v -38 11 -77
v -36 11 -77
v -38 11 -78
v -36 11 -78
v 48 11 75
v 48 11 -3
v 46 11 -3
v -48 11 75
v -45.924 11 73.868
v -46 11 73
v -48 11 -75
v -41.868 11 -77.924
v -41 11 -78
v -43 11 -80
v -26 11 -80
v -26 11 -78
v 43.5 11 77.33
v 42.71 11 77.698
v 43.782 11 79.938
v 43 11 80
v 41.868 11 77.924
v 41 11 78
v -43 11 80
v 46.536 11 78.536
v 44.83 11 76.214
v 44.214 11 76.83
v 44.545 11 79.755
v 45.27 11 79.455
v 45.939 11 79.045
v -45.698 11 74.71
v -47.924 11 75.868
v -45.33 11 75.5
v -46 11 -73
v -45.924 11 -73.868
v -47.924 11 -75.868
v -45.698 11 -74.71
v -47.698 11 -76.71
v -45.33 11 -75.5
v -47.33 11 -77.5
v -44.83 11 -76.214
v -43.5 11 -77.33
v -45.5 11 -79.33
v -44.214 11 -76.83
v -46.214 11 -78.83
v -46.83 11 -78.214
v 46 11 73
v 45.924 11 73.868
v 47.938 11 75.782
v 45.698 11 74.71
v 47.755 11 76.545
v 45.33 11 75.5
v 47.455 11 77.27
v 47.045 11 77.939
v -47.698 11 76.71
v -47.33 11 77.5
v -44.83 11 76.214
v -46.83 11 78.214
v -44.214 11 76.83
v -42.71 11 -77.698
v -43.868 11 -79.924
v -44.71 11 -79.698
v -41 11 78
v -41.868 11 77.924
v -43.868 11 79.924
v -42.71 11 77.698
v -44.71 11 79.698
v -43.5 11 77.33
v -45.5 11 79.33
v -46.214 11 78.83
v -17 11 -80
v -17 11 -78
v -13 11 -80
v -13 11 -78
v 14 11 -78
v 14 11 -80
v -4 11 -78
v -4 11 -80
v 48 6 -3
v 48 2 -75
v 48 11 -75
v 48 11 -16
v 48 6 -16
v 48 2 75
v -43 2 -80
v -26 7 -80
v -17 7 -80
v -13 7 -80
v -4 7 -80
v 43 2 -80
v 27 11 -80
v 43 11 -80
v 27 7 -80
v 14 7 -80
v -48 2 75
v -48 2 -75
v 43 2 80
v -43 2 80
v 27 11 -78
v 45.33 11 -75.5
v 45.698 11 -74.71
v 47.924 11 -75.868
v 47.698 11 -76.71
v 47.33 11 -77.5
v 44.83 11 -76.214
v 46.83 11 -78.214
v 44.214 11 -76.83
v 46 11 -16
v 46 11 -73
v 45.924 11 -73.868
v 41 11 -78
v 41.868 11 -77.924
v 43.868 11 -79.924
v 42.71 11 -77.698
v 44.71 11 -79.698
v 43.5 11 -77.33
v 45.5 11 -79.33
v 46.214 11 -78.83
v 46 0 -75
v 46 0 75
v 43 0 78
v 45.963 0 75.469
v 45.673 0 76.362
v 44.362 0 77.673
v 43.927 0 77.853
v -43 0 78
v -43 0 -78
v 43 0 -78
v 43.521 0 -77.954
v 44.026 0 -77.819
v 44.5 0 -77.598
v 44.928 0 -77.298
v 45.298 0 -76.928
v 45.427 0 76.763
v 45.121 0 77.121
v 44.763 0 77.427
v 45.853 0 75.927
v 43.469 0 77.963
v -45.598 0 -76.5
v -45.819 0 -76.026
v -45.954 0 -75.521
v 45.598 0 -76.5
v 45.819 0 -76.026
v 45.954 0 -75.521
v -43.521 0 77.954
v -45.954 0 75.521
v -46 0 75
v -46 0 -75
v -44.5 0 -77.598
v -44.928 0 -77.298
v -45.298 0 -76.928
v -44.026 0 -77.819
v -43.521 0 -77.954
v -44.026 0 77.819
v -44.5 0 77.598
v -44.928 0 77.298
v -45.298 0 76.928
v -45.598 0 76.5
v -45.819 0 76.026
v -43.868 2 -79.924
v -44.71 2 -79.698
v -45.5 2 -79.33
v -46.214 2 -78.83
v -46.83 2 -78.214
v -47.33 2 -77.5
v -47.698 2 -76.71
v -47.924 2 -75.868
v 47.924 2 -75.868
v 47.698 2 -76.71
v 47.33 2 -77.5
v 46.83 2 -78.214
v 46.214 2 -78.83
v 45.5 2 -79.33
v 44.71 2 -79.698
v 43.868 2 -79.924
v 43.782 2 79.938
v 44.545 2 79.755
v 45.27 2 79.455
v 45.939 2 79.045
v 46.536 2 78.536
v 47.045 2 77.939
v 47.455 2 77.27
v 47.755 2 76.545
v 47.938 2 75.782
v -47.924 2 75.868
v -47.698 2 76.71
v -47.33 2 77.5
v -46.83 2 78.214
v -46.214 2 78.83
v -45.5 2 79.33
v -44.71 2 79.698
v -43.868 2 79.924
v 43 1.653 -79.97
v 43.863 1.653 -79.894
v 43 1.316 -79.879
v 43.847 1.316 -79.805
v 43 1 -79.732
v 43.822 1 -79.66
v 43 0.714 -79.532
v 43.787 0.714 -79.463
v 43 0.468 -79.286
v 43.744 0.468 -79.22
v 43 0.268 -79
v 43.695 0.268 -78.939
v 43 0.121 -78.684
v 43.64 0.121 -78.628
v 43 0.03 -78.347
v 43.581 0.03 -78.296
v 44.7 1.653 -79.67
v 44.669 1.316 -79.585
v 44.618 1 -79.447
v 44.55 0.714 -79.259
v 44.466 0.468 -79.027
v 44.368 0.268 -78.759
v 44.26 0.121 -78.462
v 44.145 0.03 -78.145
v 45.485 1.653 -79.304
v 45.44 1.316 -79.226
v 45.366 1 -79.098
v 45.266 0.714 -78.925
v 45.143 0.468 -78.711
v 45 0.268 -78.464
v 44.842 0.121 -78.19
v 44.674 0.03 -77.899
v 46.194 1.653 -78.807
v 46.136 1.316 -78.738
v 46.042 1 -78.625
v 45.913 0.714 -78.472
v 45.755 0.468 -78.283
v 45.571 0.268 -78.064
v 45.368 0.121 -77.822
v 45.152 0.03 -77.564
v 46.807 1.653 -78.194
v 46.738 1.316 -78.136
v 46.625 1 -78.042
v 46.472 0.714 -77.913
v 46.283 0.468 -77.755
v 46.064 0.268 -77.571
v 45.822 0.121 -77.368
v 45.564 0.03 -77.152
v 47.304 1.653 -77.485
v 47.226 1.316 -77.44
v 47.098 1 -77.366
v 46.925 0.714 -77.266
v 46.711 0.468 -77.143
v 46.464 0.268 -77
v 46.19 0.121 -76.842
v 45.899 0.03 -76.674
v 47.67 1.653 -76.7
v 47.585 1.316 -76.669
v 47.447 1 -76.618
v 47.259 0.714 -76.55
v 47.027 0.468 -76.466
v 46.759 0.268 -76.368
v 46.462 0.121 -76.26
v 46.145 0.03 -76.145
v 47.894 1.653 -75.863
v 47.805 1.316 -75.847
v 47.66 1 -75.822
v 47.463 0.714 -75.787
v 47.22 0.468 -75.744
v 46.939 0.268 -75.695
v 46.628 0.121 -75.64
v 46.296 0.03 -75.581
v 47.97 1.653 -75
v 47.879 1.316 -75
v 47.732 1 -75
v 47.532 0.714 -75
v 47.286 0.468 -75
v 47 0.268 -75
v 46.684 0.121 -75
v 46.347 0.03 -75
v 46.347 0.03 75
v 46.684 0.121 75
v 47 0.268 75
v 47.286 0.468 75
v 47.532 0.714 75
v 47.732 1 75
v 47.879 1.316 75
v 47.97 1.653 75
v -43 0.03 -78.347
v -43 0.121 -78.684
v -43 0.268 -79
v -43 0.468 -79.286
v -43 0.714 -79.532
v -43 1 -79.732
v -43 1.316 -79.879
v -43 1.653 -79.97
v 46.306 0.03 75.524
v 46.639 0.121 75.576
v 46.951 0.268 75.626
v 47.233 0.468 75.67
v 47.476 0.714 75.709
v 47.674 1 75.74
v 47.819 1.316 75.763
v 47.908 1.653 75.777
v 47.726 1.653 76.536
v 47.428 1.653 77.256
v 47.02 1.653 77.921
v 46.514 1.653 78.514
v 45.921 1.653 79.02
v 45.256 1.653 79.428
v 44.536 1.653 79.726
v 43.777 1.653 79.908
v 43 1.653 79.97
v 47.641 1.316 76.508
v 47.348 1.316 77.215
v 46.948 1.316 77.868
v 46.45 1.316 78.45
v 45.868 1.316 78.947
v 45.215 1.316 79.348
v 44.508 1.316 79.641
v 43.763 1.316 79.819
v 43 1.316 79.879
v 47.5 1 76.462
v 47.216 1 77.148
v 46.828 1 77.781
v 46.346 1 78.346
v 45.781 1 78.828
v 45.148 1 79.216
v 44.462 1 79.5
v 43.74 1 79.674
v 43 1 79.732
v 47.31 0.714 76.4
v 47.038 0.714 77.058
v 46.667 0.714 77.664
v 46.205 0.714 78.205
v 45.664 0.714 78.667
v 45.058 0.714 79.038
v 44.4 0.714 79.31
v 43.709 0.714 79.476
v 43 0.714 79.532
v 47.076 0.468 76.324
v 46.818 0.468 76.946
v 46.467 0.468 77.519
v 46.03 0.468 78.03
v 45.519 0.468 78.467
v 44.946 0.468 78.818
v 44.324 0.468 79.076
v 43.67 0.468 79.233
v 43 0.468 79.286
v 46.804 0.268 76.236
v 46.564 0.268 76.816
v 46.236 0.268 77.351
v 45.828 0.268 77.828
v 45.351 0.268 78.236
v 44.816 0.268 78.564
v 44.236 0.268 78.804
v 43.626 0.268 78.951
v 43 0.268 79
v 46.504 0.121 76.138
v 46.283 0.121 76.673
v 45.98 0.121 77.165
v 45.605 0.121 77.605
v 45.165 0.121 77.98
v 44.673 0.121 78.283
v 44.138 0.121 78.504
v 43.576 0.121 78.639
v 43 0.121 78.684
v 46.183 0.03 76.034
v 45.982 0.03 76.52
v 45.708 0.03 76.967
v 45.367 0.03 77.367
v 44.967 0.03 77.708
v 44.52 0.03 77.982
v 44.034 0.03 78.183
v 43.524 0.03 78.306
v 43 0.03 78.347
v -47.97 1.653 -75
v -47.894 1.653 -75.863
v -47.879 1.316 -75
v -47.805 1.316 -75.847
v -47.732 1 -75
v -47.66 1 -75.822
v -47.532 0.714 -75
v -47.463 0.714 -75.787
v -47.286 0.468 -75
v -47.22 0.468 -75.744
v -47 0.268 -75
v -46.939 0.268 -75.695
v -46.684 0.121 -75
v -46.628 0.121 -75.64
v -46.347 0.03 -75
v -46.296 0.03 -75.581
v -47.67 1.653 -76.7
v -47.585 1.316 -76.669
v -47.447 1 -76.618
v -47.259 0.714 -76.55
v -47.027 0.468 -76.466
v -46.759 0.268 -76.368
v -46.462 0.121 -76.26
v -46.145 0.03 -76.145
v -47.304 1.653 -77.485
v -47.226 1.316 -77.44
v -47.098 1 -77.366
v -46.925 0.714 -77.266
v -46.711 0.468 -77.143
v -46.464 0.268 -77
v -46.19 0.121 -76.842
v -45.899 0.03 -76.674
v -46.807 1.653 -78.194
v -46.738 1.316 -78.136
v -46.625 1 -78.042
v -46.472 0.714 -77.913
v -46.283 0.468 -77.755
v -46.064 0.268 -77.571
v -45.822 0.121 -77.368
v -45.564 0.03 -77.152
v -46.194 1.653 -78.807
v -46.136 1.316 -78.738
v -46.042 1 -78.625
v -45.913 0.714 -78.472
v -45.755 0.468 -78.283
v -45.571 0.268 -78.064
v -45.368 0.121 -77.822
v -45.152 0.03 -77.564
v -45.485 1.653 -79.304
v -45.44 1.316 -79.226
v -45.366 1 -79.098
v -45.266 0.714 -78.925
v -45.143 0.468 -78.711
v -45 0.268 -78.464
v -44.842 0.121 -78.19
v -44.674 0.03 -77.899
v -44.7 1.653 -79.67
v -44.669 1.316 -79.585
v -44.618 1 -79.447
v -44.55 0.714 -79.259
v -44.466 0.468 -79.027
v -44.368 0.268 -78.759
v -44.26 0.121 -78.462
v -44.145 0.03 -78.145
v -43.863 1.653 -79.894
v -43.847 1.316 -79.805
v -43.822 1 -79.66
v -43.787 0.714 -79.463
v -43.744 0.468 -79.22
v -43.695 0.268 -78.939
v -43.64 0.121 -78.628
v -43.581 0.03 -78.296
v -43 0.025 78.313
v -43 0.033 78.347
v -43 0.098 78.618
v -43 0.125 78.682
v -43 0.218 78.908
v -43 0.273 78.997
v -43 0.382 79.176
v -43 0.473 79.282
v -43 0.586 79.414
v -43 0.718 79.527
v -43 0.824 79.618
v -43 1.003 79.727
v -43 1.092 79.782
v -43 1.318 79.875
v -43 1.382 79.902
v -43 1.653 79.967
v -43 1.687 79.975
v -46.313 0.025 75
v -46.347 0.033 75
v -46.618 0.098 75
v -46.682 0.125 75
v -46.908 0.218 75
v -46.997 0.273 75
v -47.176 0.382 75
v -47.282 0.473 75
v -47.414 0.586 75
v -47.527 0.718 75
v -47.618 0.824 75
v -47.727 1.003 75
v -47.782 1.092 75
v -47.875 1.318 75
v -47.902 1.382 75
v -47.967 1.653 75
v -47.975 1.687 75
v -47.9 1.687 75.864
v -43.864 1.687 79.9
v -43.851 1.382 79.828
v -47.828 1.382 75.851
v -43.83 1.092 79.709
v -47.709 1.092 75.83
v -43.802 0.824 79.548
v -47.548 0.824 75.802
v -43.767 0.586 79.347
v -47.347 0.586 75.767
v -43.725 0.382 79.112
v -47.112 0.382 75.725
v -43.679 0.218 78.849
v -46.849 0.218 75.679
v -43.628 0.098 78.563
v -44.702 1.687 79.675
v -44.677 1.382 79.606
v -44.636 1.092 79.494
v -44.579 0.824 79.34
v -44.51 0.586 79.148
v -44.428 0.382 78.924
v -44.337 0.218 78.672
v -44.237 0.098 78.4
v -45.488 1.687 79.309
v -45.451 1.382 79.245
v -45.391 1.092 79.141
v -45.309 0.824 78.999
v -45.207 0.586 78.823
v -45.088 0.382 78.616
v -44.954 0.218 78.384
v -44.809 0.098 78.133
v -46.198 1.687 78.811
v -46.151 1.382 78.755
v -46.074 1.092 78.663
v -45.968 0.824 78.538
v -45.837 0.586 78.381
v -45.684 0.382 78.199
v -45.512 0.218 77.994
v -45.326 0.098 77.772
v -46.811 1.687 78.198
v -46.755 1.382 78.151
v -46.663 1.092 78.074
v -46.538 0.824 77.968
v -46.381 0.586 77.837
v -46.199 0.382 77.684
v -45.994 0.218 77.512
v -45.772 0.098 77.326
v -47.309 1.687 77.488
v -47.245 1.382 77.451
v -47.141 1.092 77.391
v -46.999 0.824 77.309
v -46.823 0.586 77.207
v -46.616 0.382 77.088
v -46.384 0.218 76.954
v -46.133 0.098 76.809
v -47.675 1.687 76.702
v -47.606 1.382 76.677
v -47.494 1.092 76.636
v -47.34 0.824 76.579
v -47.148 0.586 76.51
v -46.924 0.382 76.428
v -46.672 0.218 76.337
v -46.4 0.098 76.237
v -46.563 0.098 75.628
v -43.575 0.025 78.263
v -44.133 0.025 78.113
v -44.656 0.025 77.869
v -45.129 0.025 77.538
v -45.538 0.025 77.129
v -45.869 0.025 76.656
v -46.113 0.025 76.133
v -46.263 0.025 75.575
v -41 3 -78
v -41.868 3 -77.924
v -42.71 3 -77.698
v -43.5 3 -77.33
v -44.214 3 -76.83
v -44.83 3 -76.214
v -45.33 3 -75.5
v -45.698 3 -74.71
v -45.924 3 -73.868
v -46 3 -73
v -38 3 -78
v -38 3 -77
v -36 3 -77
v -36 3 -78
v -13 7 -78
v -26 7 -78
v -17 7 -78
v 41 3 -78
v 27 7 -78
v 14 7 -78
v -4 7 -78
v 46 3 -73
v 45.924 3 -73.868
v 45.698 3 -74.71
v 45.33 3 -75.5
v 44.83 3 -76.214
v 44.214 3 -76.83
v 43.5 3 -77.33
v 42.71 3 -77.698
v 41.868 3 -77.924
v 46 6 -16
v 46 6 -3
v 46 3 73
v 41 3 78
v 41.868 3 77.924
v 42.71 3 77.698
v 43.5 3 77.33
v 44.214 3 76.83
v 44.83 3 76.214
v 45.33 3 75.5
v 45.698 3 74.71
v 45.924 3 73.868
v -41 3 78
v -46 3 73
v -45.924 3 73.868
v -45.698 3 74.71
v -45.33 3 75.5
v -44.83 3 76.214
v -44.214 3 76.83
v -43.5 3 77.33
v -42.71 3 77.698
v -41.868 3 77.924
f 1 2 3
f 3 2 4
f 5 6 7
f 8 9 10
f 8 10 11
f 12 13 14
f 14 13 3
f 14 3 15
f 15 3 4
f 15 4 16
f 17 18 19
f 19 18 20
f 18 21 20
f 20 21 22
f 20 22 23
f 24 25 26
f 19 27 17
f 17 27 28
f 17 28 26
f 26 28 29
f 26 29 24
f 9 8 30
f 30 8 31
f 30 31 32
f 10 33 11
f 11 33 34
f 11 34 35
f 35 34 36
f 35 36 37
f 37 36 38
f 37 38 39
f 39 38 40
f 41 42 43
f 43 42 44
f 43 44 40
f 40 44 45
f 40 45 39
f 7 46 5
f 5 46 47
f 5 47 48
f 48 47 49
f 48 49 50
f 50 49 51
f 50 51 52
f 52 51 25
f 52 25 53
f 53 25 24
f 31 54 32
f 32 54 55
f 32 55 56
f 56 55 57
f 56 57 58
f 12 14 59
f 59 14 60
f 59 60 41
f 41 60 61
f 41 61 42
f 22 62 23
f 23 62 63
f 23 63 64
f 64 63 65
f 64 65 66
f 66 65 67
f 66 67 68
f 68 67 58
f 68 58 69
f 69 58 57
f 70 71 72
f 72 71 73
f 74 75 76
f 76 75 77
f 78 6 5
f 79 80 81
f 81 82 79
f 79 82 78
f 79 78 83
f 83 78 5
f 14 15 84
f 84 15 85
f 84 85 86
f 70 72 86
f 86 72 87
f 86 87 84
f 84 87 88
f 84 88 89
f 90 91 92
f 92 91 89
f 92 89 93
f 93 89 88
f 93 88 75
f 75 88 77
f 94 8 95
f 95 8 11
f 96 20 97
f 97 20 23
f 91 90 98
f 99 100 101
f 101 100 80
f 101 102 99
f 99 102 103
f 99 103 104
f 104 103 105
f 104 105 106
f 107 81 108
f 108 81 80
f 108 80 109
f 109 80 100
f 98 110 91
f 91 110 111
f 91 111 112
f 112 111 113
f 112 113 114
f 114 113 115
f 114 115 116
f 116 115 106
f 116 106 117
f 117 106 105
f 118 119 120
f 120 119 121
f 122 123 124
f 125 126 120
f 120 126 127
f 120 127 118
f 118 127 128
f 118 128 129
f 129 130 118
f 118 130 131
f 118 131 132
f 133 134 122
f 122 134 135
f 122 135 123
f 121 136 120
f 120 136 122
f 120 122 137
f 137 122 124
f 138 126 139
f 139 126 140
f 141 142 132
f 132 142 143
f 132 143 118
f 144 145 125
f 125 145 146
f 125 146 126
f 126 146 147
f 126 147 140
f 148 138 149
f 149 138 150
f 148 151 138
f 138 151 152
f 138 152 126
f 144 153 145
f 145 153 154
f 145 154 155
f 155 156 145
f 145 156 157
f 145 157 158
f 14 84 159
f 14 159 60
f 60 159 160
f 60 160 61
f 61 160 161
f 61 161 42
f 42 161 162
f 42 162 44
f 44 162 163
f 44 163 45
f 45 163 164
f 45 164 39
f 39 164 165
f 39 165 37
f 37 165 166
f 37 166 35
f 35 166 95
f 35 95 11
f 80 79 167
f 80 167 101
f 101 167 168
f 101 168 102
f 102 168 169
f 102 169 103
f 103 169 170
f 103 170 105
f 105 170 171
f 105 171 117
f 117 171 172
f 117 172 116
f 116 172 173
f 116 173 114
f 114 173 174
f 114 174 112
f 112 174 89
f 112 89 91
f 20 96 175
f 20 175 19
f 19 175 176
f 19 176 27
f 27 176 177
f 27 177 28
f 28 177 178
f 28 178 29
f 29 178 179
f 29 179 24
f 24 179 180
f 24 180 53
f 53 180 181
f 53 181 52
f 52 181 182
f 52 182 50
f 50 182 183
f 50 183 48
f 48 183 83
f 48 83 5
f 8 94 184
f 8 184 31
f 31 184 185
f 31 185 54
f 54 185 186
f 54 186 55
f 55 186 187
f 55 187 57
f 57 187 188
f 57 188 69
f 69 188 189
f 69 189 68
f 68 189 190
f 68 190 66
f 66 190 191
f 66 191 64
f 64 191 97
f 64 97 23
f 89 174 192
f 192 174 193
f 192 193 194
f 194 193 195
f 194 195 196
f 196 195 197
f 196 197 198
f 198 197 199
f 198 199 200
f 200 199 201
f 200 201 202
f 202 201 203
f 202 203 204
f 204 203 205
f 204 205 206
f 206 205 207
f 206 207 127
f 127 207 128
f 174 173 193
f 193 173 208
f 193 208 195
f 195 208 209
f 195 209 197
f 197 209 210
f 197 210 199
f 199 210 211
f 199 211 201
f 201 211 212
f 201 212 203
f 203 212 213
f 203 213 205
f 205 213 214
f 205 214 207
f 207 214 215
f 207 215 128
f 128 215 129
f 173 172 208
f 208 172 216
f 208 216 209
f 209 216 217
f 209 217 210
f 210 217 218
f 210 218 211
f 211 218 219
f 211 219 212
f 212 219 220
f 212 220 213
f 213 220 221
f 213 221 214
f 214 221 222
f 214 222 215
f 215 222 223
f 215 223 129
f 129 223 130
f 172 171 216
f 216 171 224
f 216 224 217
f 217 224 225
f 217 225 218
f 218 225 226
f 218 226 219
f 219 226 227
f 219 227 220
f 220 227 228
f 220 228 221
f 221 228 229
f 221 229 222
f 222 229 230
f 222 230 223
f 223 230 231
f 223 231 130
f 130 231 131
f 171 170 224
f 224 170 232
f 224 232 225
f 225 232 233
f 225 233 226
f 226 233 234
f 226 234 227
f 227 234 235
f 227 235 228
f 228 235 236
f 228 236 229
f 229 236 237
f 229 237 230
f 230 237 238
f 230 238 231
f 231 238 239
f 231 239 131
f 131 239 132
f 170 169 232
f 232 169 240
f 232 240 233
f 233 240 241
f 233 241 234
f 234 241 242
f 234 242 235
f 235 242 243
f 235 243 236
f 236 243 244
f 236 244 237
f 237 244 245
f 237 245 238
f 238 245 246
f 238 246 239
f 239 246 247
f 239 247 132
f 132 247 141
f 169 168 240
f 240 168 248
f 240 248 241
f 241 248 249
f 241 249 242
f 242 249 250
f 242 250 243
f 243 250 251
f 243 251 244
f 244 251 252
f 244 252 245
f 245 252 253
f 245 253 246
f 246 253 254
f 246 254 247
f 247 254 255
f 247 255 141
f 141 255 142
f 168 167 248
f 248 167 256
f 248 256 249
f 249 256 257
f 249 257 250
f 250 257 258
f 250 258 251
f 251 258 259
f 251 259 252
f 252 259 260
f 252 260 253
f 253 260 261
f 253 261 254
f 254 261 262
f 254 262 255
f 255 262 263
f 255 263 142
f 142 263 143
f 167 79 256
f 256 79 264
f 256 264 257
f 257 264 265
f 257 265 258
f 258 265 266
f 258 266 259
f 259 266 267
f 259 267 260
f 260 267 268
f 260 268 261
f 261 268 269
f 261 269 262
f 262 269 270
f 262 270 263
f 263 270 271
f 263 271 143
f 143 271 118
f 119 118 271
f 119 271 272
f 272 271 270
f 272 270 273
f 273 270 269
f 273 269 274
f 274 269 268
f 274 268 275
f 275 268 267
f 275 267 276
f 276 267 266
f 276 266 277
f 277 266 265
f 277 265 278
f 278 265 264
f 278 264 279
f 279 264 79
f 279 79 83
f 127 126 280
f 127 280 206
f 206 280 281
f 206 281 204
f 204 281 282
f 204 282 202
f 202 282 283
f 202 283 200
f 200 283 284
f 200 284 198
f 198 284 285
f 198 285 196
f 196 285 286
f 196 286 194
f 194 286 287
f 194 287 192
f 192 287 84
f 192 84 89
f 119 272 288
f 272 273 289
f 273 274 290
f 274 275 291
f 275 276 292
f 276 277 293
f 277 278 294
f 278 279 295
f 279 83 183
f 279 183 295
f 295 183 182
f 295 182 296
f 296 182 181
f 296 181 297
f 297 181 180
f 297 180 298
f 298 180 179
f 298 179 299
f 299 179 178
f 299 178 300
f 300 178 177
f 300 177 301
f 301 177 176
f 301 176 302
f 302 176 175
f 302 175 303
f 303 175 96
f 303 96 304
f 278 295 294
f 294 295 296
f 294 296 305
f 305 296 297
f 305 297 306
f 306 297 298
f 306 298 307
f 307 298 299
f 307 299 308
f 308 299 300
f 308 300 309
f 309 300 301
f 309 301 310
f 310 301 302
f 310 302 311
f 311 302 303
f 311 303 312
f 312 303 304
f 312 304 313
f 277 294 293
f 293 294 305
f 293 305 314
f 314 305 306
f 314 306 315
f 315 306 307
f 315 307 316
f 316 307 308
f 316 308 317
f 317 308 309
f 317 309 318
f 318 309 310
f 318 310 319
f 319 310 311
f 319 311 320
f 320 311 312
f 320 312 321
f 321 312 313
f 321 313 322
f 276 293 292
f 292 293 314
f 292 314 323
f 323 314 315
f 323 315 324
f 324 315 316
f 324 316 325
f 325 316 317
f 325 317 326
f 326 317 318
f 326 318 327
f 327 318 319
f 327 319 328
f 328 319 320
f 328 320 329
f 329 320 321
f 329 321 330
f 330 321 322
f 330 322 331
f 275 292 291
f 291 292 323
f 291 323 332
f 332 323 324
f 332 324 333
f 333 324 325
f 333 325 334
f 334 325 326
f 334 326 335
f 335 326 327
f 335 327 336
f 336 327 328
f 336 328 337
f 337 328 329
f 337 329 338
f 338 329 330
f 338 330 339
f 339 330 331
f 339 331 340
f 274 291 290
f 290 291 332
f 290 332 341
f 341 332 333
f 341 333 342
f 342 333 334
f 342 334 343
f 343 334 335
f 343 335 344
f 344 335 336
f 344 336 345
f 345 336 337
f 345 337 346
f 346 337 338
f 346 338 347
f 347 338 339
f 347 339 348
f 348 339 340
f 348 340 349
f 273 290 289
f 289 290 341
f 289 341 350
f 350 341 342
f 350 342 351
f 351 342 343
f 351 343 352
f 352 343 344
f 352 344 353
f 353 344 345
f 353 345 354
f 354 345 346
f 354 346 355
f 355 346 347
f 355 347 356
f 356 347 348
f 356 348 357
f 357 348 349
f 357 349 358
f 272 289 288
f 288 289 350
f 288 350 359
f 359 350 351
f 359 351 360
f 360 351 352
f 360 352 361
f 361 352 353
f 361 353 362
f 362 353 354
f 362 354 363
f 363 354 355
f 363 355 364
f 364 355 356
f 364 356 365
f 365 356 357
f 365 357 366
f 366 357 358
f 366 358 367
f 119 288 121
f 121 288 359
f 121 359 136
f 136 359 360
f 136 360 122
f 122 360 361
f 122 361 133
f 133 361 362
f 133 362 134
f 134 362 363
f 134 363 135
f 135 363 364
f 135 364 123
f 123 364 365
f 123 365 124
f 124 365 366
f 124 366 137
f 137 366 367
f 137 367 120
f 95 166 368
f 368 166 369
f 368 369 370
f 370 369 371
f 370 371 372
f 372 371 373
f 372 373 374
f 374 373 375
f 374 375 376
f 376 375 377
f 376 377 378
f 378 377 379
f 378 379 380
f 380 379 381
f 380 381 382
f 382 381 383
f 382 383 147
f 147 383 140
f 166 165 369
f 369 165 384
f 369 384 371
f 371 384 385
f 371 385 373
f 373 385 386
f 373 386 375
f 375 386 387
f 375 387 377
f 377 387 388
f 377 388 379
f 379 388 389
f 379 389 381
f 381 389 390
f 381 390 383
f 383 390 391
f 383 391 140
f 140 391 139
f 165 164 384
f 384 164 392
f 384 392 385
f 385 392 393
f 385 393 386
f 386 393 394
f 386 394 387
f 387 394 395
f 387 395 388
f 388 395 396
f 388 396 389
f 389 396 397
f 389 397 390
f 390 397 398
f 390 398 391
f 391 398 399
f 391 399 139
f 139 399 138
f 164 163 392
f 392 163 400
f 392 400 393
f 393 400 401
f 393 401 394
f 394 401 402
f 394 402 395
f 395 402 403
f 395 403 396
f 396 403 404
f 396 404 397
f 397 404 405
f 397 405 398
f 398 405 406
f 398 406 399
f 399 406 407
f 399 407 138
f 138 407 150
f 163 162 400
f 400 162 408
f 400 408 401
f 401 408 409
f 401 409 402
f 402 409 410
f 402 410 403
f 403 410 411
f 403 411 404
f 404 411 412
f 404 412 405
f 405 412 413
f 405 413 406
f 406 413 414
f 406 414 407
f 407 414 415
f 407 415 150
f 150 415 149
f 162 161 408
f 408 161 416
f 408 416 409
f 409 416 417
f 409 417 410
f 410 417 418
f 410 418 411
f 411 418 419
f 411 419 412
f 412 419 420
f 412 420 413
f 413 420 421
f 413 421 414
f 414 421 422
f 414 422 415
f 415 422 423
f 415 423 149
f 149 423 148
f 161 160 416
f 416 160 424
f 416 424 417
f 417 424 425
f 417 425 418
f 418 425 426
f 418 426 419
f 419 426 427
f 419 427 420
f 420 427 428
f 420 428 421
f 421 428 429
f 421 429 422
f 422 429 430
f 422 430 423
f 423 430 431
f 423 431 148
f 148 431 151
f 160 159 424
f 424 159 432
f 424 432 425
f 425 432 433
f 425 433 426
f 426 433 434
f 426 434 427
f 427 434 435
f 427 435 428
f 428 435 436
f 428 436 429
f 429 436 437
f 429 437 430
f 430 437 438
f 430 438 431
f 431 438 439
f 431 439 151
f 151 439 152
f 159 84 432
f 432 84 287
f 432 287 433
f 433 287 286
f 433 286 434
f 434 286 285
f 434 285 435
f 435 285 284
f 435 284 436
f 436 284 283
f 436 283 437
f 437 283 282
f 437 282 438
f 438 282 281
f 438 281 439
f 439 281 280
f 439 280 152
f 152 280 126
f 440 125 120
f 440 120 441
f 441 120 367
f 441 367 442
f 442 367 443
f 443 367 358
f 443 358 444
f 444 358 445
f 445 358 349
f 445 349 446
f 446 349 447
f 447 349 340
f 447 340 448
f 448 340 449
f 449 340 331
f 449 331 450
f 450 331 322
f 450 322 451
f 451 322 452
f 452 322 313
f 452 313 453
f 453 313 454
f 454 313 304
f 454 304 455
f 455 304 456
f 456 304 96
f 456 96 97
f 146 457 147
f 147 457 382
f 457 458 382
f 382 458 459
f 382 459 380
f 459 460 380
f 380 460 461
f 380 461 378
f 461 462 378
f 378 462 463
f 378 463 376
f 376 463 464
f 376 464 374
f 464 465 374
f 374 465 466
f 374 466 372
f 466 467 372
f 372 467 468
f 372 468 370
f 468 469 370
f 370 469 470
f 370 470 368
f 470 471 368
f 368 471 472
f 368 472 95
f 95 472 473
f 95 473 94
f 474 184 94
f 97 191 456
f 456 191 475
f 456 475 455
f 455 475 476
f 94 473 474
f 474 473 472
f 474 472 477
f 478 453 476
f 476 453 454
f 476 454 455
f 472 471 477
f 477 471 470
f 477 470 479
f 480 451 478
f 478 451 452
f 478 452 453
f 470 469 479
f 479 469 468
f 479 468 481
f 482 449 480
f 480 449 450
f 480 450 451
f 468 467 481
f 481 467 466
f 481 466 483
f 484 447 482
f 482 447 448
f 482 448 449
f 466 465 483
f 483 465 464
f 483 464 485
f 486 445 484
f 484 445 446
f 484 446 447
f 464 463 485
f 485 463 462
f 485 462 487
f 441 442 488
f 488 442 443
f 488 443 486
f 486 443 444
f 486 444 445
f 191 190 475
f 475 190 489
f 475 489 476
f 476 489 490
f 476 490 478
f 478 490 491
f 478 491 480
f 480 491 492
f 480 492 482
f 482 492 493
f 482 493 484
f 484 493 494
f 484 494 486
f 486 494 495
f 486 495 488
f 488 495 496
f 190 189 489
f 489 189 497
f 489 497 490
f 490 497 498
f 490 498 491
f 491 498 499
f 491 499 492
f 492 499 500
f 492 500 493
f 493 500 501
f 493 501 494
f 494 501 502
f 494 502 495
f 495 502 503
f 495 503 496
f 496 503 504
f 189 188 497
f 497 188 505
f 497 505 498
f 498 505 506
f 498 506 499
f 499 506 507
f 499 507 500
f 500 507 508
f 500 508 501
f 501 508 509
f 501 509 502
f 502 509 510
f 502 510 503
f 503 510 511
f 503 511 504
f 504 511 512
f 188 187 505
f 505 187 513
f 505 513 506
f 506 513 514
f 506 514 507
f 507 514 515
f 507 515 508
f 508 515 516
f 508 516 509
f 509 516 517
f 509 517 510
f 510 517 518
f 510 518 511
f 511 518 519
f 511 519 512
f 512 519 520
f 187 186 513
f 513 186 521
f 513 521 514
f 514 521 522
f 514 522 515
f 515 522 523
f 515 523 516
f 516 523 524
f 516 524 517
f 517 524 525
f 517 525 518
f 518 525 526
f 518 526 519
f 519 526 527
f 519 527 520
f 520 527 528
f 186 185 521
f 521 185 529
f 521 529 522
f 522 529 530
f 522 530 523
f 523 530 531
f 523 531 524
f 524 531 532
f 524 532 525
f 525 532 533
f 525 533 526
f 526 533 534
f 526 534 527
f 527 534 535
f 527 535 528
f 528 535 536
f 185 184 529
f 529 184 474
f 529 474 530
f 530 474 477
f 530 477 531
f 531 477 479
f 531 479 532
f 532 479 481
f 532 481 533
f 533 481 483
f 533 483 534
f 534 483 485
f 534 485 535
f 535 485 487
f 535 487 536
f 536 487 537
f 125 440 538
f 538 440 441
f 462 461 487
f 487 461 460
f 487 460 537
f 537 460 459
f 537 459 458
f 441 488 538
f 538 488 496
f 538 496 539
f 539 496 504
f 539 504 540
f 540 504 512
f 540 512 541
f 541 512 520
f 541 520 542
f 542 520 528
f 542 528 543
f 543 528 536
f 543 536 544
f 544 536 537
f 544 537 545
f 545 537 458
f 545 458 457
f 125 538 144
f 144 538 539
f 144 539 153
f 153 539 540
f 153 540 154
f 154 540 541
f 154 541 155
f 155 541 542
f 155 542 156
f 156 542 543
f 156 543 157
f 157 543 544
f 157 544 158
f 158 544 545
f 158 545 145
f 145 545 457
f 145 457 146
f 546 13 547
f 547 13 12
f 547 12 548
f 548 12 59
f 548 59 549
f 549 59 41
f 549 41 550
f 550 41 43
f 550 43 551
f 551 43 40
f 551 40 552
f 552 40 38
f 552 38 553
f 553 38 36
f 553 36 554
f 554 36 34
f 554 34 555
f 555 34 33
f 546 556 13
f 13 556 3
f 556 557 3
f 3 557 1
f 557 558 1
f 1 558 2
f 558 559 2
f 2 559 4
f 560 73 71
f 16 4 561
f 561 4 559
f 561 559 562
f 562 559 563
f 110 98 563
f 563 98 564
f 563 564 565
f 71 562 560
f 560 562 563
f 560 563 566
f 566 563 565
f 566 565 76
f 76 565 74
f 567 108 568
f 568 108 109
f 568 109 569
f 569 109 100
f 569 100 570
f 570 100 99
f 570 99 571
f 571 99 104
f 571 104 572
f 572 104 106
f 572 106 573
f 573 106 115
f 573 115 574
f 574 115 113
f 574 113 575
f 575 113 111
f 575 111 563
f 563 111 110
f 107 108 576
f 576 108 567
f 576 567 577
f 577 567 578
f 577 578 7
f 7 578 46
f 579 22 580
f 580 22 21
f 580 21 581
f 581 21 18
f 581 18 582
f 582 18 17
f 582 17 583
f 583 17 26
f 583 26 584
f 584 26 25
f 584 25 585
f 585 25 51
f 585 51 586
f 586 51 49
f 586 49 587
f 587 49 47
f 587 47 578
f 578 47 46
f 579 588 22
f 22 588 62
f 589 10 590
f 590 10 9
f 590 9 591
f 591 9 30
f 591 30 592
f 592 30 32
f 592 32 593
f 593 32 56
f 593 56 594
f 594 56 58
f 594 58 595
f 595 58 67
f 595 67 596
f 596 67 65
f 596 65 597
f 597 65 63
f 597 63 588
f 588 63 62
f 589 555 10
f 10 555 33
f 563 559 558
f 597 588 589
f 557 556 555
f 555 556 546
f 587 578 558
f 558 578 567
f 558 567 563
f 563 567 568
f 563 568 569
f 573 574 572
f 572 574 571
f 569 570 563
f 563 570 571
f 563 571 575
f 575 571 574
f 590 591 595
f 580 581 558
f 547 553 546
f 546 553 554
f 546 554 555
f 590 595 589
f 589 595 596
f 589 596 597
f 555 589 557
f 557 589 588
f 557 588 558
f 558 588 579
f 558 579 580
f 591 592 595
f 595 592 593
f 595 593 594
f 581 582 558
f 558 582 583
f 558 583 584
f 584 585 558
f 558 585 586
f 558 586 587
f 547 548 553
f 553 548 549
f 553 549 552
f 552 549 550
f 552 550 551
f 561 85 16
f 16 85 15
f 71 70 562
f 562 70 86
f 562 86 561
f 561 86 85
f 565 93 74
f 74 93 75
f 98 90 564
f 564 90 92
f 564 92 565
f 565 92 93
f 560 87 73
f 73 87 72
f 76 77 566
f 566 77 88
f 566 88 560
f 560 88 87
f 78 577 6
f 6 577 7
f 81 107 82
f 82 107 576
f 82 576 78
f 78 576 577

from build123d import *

# Parameters (mm, degrees)
SKETCH_1_W          = 96
SKETCH_1_H          = 160
EXTRUDE_1_DEPTH     = 11
FILLET_1_R          = 5
FILLET_2_R          = 5
FILLET_3_R          = 5
FILLET_4_R          = 5
FILLET_5_R          = 2
CUT_EXTRUDE_1_DEPTH = 8
SKETCH_3_W          = 9
SKETCH_3_H          = 4
SKETCH_3_W_2        = 13
CUT_EXTRUDE_2_DEPTH = 4
SKETCH_4_W          = 13
SKETCH_4_H          = 5
CUT_EXTRUDE_3_DEPTH = 5


with BuildPart() as part:
    # 草图1 → 凸台-拉伸1 (new body)
    with BuildSketch(Plane(origin=(0, 0, 0), x_dir=(1, 0, 0), z_dir=(0, 1, 0))):
        Rectangle(SKETCH_1_W, SKETCH_1_H)
    extrude(amount=EXTRUDE_1_DEPTH)

    # 圆角1
    fillet_1_edges = [part.edges().sort_by_distance(p)[0] for p in [
        (-48, 5.5, -80),
    ]]
    fillet(fillet_1_edges, radius=FILLET_1_R)

    # 圆角2
    fillet_2_edges = [part.edges().sort_by_distance(p)[0] for p in [
        (48, 5.5, -80),
    ]]
    fillet(fillet_2_edges, radius=FILLET_2_R)

    # 圆角3
    fillet_3_edges = [part.edges().sort_by_distance(p)[0] for p in [
        (48, 5.5, 80),
    ]]
    fillet(fillet_3_edges, radius=FILLET_3_R)

    # 圆角4
    fillet_4_edges = [part.edges().sort_by_distance(p)[0] for p in [
        (-48, 5.5, 80),
    ]]
    fillet(fillet_4_edges, radius=FILLET_4_R)

    # 圆角5
    fillet_5_edges = [part.edges().sort_by_distance(p)[0] for p in [
        (-48, 0, 0),
        (-46.535533906, 0, -78.535533906),
        (0, 0, -80),
        (46.535533906, 0, -78.535533906),
        (48, 0, 0),
        (46.535533906, 0, 78.535533906),
        (0, 0, 80),
        (-46.535533906, 0, 78.535533906),
    ]]
    fillet(fillet_5_edges, radius=FILLET_5_R)

    # 草图2 → 切除-拉伸1 (cut)
    with BuildSketch(Plane(origin=(0, 11, 0), x_dir=(1, 0, 0), z_dir=(0, 1, 0))):
        with BuildLine():
            Line((-36, 78), (41, 78))
            ThreePointArc((41, 78), (44.535533906, 76.535533906), (46, 73))
            Line((46, 73), (46, -73))
            ThreePointArc((46, -73), (44.535533906, -76.535533906), (41, -78))
            Line((41, -78), (-41, -78))
            ThreePointArc((-41, -78), (-44.535533906, -76.535533906), (-46, -73))
            Line((-46, -73), (-46, 73))
            ThreePointArc((-46, 73), (-44.535533906, 76.535533906), (-41, 78))
            Line((-41, 78), (-38, 78))
            Line((-38, 78), (-38, 77))
            Line((-38, 77), (-36, 77))
            Line((-36, 77), (-36, 78))
        make_face()
    extrude(amount=-CUT_EXTRUDE_1_DEPTH, mode=Mode.SUBTRACT)

    # 草图3 → 切除-拉伸2 (cut)
    with BuildSketch(Plane.XY.offset(-78)):
        with Locations((-21.5, 9)):
            Rectangle(SKETCH_3_W, SKETCH_3_H)
        with Locations((-8.5, 9)):
            Rectangle(SKETCH_3_W, SKETCH_3_H)
        with Locations((16.277912798, 56.653498761)):
            Rectangle(SKETCH_3_W, SKETCH_3_H)
        with Locations((20.5, 9)):
            Rectangle(SKETCH_3_W_2, SKETCH_3_H)
    extrude(amount=-CUT_EXTRUDE_2_DEPTH, mode=Mode.SUBTRACT)

    # 草图4 → 切除-拉伸3 (cut)
    with BuildSketch(Plane(origin=(48, 0, 0), x_dir=(0, 0, -1), z_dir=(1, 0, 0))):
        with Locations((9.5, 8.5)):
            Rectangle(SKETCH_4_W, SKETCH_4_H)
    extrude(amount=-CUT_EXTRUDE_3_DEPTH, mode=Mode.SUBTRACT)


solid = part.part
